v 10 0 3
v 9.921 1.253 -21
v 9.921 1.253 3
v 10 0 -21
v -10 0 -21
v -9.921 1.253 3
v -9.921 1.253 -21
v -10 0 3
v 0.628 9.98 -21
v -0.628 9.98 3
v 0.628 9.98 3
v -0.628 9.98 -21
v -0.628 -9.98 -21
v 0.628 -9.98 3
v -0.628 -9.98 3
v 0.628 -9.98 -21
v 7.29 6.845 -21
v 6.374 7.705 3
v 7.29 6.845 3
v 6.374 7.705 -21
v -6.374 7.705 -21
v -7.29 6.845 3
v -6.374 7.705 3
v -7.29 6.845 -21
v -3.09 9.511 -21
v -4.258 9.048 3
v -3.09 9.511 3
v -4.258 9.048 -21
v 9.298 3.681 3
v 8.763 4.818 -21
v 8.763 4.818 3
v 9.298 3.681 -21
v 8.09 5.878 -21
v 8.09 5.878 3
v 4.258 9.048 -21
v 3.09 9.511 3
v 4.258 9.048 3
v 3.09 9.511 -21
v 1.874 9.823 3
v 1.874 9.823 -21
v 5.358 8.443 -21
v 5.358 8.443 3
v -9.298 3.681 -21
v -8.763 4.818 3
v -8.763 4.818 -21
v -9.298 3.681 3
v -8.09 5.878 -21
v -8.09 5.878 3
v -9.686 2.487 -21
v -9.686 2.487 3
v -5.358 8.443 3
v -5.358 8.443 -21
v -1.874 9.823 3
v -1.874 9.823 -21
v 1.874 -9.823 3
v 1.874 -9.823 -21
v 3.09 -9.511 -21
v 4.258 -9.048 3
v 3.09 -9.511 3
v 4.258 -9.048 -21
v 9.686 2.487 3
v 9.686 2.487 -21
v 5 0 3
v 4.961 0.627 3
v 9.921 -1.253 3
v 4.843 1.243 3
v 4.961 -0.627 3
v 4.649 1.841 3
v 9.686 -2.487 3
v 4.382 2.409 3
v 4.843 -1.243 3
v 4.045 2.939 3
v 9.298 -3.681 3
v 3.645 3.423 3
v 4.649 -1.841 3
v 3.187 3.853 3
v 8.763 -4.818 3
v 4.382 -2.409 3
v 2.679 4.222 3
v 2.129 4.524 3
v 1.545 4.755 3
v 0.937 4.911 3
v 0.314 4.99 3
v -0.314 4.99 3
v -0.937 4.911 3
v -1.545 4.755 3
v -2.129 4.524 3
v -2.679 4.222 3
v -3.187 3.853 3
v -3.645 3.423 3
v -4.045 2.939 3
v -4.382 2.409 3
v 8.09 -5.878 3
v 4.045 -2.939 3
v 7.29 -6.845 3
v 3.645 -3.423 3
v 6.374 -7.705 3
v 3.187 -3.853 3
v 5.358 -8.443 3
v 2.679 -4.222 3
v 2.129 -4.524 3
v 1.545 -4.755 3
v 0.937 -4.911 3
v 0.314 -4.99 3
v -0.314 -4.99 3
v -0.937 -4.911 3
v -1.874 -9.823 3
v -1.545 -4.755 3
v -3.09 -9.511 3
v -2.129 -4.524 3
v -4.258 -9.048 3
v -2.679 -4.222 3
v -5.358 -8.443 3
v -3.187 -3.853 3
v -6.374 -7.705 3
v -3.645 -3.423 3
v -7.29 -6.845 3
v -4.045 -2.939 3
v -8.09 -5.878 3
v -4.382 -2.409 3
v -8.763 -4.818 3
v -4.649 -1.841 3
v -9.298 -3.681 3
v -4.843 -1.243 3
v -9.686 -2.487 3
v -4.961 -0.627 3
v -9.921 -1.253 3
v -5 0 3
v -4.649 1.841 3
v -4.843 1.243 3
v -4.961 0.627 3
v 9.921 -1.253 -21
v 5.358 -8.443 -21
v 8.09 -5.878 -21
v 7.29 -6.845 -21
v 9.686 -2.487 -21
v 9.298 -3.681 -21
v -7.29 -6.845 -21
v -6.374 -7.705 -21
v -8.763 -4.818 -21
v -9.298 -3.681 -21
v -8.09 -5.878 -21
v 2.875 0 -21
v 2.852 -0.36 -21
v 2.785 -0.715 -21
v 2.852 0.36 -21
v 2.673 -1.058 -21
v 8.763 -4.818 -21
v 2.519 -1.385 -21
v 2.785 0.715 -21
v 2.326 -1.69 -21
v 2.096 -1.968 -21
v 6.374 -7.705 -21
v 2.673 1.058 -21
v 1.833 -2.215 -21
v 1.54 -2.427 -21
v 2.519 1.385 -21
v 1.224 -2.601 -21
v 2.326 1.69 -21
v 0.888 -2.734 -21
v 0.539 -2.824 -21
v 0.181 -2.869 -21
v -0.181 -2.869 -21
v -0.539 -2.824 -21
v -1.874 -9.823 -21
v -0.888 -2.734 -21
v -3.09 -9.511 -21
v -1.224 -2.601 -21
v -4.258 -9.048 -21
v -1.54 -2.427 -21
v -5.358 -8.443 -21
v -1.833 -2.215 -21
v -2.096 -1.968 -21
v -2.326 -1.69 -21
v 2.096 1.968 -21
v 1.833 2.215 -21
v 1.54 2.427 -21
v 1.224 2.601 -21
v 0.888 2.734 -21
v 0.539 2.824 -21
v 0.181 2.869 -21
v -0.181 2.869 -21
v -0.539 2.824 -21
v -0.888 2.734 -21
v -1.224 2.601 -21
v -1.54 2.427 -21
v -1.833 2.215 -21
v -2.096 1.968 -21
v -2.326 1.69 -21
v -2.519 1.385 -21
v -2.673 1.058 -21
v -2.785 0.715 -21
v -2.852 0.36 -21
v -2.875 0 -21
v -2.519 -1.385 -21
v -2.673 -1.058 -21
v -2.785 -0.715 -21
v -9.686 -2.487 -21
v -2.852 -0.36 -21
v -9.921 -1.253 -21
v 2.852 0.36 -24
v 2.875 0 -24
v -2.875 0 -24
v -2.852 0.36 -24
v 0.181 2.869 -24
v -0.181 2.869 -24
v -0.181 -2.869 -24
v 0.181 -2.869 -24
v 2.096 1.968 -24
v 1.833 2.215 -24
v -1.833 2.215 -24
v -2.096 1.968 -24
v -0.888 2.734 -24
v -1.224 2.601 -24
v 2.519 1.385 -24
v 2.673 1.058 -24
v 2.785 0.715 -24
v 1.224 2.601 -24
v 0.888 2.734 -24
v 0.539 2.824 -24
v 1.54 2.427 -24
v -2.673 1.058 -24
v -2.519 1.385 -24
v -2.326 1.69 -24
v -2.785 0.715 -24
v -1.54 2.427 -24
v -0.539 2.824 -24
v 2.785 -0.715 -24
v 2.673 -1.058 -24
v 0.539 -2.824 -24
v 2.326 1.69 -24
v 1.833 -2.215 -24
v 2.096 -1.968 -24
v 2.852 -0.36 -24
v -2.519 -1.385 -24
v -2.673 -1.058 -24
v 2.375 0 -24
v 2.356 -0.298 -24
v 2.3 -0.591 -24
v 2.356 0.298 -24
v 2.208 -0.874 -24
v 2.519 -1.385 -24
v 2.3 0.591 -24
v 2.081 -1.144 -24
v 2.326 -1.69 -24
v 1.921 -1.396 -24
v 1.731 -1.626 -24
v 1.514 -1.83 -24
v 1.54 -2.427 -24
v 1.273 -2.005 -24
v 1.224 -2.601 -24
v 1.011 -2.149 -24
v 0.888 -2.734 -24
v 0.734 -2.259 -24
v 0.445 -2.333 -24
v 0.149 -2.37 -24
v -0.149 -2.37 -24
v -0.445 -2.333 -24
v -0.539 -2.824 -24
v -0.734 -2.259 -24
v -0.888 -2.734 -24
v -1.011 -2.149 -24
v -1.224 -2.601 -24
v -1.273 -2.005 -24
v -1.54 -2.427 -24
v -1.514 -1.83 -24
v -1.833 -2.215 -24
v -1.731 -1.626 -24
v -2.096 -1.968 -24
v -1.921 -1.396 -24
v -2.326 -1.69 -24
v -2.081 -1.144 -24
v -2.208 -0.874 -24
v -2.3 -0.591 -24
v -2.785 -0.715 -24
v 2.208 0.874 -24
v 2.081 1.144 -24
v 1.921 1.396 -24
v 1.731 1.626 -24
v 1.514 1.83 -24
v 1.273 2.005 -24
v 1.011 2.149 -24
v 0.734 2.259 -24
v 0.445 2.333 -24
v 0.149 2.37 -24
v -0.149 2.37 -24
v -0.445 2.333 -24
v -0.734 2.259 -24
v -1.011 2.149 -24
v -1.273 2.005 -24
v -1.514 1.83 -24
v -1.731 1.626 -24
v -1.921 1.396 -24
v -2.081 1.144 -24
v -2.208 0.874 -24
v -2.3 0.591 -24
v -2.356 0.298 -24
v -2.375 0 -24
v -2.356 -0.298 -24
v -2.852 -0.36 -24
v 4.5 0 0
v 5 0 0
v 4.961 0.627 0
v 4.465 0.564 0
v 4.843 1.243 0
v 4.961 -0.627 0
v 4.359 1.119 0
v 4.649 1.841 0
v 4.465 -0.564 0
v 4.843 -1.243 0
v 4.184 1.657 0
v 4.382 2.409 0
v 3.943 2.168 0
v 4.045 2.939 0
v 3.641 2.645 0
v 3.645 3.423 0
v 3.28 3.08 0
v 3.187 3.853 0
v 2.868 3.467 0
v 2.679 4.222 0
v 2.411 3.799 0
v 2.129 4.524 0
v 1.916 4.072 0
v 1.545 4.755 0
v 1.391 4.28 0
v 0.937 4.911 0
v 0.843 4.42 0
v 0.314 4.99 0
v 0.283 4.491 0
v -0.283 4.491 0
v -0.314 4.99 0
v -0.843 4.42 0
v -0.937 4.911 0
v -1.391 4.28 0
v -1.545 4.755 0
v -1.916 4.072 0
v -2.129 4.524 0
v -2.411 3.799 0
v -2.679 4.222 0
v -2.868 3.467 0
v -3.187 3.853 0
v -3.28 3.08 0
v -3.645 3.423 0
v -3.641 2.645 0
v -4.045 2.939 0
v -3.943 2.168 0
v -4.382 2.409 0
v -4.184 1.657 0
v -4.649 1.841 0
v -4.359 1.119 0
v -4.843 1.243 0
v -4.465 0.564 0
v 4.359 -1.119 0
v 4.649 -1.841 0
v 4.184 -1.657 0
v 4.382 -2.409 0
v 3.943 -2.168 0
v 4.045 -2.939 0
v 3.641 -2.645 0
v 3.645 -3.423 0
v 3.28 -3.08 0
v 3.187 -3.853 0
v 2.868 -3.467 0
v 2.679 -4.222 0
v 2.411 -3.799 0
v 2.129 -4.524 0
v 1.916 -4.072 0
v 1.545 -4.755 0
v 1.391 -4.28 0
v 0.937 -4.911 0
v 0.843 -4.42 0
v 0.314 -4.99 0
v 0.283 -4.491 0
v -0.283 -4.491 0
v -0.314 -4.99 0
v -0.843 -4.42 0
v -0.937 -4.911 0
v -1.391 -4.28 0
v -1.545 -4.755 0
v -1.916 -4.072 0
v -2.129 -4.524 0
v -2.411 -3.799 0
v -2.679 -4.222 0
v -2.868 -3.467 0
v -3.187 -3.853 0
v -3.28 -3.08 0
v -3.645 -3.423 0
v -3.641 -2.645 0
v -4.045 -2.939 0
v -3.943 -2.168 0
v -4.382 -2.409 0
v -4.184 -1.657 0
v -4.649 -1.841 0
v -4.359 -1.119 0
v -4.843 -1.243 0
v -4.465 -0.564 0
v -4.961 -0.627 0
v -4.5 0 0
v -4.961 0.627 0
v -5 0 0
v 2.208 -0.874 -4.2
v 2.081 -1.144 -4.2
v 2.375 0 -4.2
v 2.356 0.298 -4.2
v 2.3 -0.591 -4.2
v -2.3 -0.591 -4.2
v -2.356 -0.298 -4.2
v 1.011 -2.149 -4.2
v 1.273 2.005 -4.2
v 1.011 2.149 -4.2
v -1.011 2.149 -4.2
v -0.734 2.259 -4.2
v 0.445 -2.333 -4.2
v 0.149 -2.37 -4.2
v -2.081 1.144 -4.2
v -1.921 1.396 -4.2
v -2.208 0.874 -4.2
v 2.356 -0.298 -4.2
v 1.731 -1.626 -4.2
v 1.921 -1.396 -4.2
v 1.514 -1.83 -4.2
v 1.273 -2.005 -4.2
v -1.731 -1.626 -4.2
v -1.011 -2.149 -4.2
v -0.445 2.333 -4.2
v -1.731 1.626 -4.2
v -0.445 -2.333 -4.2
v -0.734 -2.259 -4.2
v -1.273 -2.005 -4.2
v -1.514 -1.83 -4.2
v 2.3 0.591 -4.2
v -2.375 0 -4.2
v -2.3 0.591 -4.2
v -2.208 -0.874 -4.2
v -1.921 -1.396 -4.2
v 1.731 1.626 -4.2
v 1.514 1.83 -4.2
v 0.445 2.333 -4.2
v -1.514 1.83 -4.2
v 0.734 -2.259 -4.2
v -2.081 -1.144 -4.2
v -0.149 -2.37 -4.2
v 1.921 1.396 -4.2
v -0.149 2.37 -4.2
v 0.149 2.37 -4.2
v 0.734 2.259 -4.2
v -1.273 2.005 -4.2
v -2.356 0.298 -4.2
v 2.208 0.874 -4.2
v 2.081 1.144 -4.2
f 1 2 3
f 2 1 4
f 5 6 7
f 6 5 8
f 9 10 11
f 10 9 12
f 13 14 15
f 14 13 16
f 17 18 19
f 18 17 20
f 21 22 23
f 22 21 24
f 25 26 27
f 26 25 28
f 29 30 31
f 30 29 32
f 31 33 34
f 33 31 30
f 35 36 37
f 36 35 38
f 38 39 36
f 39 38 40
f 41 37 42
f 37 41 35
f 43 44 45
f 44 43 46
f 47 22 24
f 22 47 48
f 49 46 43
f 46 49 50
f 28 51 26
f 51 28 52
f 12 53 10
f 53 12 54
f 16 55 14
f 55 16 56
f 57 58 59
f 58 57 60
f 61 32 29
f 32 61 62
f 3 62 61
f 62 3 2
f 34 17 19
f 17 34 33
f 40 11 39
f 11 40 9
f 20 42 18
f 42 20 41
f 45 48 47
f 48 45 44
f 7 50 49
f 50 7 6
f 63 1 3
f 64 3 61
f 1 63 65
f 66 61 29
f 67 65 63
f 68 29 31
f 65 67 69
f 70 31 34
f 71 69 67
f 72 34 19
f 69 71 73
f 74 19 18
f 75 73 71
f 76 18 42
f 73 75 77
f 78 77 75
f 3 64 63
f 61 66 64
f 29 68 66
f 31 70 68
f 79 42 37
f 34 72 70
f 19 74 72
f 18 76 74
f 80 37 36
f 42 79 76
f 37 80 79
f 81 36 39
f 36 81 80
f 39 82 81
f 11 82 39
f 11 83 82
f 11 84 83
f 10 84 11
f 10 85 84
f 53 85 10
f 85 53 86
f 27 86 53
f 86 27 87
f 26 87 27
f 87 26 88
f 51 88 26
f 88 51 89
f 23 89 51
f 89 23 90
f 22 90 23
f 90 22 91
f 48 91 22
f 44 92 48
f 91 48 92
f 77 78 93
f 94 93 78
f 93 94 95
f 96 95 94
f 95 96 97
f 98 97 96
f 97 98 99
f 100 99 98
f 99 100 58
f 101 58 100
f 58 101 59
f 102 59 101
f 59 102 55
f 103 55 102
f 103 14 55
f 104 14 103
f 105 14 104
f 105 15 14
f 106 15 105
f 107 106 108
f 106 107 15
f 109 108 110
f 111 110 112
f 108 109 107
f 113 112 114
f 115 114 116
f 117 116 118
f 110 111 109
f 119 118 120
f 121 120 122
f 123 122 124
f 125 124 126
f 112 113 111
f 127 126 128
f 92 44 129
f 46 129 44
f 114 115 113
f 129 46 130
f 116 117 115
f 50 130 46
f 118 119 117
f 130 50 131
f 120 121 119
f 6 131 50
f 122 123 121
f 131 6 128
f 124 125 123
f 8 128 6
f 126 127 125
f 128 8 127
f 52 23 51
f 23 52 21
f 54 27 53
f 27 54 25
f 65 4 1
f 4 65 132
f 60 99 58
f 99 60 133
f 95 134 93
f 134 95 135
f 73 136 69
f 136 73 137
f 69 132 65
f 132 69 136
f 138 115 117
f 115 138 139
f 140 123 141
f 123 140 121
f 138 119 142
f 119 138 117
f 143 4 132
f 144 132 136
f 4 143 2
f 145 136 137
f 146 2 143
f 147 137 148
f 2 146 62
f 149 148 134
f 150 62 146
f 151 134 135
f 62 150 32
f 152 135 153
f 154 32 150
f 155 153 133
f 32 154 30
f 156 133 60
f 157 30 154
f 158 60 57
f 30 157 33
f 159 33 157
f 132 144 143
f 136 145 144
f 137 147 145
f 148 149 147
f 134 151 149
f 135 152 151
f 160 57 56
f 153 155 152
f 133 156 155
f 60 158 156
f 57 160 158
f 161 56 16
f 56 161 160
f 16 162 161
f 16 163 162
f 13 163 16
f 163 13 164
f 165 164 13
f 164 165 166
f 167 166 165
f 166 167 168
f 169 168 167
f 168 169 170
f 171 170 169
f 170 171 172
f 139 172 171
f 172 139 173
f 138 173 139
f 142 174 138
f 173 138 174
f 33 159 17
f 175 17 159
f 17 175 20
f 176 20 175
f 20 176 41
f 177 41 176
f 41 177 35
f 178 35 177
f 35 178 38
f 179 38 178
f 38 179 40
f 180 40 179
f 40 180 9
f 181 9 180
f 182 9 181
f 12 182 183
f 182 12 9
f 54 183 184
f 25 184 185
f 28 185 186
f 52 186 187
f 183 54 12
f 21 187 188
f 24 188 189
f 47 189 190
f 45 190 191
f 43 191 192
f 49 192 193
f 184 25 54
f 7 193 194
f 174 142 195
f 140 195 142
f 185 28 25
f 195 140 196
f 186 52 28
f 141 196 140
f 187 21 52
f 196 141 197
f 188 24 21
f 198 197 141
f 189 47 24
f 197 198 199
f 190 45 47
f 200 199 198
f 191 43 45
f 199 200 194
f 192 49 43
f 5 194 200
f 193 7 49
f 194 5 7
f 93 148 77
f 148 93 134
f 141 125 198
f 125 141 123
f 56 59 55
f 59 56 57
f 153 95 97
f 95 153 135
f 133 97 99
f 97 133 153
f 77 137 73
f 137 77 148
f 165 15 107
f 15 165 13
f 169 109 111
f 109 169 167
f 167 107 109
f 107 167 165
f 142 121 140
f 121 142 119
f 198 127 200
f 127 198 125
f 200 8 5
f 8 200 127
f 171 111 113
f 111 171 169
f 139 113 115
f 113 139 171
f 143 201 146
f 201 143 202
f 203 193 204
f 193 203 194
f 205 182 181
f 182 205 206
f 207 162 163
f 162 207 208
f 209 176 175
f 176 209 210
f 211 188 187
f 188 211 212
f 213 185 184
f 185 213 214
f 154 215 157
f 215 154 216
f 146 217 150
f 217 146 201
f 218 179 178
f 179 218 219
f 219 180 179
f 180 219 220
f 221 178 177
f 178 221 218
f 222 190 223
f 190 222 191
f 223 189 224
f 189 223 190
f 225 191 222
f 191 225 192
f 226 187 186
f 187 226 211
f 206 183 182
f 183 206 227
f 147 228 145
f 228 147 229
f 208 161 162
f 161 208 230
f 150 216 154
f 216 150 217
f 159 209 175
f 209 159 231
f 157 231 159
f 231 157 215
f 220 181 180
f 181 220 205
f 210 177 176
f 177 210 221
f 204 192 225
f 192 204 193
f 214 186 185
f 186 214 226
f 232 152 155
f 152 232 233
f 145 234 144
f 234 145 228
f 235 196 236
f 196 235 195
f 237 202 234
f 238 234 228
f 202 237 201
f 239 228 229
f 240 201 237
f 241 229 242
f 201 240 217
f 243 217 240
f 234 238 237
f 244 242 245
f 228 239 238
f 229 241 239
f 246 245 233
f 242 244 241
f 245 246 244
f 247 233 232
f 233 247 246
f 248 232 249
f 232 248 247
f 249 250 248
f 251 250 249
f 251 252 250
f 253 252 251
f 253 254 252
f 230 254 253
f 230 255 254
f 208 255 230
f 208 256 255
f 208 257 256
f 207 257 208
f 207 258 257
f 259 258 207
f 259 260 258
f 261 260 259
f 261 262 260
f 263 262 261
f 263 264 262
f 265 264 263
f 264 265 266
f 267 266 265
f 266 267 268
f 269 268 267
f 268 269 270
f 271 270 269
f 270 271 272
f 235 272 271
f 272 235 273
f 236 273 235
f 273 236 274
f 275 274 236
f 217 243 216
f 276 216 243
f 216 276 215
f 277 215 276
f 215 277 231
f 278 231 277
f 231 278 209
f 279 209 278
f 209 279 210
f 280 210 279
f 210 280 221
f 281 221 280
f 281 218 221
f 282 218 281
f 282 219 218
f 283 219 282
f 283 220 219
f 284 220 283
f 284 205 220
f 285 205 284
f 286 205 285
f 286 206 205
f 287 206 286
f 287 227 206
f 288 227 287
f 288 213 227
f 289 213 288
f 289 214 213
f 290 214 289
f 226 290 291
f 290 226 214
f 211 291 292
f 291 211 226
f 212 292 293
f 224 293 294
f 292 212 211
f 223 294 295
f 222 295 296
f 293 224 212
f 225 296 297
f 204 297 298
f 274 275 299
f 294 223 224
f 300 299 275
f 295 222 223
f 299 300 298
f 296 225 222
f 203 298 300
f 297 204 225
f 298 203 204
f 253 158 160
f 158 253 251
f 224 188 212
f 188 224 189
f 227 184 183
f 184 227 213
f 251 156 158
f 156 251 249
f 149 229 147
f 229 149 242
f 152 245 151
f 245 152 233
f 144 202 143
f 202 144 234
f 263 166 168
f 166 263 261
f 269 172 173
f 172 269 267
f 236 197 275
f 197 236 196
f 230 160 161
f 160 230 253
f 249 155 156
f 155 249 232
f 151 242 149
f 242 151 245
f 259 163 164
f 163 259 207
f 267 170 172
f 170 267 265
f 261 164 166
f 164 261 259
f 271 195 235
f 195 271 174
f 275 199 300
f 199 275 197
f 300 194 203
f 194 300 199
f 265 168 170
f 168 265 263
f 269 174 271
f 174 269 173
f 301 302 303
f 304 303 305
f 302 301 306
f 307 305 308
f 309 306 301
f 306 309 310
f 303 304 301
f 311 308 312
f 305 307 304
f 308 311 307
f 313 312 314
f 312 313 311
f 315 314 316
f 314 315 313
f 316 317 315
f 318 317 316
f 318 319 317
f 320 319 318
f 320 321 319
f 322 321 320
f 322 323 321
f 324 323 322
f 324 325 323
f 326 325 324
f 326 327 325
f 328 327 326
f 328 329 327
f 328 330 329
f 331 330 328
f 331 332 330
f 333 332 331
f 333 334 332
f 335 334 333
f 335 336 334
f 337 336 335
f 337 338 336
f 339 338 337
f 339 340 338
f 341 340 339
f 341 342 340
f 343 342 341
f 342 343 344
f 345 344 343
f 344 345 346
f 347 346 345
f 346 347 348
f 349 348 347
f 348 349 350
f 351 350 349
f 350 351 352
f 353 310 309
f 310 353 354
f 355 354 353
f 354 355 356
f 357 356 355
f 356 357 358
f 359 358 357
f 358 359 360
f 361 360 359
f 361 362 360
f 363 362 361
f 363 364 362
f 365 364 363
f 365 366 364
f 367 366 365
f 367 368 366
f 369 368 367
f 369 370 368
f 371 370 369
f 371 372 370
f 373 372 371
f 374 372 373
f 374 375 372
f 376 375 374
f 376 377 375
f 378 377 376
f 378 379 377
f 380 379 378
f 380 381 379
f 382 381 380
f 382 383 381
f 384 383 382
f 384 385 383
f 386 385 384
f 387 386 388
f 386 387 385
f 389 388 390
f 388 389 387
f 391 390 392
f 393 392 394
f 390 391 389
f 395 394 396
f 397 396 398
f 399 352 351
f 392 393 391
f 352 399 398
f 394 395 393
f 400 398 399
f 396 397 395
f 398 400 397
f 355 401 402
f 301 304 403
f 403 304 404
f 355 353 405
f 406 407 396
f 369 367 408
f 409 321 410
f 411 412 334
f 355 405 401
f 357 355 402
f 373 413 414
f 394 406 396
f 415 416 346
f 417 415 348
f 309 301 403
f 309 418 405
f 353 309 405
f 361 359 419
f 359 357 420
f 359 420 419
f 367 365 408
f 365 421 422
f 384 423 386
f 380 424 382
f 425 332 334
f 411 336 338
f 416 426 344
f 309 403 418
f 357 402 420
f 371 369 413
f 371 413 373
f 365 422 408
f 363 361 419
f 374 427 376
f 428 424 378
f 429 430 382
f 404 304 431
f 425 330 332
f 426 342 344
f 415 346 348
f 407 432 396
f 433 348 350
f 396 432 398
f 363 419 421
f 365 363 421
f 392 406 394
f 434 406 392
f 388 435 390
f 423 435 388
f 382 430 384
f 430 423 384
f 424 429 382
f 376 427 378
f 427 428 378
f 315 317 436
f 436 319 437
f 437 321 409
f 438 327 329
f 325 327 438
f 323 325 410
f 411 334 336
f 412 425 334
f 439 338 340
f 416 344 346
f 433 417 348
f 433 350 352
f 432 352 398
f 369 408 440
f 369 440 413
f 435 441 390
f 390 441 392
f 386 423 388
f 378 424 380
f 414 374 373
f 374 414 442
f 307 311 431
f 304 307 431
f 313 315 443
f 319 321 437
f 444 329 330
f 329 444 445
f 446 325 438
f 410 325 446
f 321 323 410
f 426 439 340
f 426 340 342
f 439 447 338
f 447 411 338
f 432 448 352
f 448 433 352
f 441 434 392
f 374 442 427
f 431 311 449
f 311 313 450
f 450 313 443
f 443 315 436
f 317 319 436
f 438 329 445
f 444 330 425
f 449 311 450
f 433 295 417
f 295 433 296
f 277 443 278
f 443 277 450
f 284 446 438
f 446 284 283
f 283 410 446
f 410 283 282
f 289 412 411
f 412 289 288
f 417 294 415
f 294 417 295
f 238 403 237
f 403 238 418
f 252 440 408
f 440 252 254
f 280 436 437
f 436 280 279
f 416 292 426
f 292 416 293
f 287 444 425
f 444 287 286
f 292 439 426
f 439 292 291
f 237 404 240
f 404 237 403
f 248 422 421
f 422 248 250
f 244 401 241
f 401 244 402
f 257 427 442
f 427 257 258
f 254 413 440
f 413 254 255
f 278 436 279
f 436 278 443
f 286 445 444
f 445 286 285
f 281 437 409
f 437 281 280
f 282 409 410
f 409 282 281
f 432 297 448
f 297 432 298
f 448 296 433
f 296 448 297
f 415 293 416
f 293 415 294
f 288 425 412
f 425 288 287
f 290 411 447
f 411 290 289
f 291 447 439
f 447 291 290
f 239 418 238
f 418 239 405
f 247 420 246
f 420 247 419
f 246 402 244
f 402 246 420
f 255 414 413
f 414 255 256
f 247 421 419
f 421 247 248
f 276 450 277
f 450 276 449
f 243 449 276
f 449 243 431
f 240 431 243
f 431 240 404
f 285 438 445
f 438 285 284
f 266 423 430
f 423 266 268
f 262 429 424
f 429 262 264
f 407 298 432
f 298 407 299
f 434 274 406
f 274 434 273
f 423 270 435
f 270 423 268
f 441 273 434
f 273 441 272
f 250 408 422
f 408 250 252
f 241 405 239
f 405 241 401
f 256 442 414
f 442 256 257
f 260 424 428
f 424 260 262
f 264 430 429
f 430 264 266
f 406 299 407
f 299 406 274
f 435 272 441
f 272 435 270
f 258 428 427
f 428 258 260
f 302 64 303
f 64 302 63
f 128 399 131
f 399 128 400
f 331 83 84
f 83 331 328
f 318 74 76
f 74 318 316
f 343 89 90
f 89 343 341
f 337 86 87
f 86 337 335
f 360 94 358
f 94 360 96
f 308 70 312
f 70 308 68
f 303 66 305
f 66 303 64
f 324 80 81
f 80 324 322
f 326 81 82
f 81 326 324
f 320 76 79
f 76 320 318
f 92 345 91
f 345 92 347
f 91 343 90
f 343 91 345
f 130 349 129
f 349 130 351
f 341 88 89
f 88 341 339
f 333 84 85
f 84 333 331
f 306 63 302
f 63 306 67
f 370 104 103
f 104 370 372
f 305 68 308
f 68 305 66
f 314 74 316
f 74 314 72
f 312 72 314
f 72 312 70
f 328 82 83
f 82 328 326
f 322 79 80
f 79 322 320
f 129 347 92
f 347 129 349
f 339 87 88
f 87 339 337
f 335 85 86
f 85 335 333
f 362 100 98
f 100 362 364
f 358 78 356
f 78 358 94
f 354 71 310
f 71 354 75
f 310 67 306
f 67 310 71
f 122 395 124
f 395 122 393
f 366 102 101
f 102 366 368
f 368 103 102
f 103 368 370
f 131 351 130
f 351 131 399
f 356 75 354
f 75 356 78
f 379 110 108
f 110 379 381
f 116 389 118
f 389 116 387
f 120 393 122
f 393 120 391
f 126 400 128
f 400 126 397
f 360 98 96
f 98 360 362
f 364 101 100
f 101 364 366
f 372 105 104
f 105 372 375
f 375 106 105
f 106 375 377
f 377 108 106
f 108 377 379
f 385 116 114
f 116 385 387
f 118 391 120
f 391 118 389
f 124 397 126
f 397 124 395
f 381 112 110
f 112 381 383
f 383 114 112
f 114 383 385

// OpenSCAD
$fn = 50;

difference() {
	union() {
		translate(v = [0, 0, -21.0]) {
			cylinder(h = 24, r = 10.0);
		}
		#translate(v = [0, 0, -24.0]) {
			cylinder(h = 24, r = 2.875);
		}
	}
	union() {
		translate(v = [0, 0, 0]) {
			rotate(a = [0, 0, 0]) {
				difference() {
					union() {
						translate(v = [0, 0, -24.0]) {
							cylinder(h = 24, r = 2.25);
						}
						translate(v = [0, 0, -4.2]) {
							cylinder(h = 4.2, r1 = 2.375, r2 = 4.5);
						}
						translate(v = [0, 0, -24.0]) {
							cylinder(h = 24, r = 2.375);
						}
						translate(v = [0, 0, -24.0]) {
							cylinder(h = 24, r = 2.25);
						}
					}
					union();
				}
			}
		}
		#cylinder(h = 3, r = 5.0);
	}
}
